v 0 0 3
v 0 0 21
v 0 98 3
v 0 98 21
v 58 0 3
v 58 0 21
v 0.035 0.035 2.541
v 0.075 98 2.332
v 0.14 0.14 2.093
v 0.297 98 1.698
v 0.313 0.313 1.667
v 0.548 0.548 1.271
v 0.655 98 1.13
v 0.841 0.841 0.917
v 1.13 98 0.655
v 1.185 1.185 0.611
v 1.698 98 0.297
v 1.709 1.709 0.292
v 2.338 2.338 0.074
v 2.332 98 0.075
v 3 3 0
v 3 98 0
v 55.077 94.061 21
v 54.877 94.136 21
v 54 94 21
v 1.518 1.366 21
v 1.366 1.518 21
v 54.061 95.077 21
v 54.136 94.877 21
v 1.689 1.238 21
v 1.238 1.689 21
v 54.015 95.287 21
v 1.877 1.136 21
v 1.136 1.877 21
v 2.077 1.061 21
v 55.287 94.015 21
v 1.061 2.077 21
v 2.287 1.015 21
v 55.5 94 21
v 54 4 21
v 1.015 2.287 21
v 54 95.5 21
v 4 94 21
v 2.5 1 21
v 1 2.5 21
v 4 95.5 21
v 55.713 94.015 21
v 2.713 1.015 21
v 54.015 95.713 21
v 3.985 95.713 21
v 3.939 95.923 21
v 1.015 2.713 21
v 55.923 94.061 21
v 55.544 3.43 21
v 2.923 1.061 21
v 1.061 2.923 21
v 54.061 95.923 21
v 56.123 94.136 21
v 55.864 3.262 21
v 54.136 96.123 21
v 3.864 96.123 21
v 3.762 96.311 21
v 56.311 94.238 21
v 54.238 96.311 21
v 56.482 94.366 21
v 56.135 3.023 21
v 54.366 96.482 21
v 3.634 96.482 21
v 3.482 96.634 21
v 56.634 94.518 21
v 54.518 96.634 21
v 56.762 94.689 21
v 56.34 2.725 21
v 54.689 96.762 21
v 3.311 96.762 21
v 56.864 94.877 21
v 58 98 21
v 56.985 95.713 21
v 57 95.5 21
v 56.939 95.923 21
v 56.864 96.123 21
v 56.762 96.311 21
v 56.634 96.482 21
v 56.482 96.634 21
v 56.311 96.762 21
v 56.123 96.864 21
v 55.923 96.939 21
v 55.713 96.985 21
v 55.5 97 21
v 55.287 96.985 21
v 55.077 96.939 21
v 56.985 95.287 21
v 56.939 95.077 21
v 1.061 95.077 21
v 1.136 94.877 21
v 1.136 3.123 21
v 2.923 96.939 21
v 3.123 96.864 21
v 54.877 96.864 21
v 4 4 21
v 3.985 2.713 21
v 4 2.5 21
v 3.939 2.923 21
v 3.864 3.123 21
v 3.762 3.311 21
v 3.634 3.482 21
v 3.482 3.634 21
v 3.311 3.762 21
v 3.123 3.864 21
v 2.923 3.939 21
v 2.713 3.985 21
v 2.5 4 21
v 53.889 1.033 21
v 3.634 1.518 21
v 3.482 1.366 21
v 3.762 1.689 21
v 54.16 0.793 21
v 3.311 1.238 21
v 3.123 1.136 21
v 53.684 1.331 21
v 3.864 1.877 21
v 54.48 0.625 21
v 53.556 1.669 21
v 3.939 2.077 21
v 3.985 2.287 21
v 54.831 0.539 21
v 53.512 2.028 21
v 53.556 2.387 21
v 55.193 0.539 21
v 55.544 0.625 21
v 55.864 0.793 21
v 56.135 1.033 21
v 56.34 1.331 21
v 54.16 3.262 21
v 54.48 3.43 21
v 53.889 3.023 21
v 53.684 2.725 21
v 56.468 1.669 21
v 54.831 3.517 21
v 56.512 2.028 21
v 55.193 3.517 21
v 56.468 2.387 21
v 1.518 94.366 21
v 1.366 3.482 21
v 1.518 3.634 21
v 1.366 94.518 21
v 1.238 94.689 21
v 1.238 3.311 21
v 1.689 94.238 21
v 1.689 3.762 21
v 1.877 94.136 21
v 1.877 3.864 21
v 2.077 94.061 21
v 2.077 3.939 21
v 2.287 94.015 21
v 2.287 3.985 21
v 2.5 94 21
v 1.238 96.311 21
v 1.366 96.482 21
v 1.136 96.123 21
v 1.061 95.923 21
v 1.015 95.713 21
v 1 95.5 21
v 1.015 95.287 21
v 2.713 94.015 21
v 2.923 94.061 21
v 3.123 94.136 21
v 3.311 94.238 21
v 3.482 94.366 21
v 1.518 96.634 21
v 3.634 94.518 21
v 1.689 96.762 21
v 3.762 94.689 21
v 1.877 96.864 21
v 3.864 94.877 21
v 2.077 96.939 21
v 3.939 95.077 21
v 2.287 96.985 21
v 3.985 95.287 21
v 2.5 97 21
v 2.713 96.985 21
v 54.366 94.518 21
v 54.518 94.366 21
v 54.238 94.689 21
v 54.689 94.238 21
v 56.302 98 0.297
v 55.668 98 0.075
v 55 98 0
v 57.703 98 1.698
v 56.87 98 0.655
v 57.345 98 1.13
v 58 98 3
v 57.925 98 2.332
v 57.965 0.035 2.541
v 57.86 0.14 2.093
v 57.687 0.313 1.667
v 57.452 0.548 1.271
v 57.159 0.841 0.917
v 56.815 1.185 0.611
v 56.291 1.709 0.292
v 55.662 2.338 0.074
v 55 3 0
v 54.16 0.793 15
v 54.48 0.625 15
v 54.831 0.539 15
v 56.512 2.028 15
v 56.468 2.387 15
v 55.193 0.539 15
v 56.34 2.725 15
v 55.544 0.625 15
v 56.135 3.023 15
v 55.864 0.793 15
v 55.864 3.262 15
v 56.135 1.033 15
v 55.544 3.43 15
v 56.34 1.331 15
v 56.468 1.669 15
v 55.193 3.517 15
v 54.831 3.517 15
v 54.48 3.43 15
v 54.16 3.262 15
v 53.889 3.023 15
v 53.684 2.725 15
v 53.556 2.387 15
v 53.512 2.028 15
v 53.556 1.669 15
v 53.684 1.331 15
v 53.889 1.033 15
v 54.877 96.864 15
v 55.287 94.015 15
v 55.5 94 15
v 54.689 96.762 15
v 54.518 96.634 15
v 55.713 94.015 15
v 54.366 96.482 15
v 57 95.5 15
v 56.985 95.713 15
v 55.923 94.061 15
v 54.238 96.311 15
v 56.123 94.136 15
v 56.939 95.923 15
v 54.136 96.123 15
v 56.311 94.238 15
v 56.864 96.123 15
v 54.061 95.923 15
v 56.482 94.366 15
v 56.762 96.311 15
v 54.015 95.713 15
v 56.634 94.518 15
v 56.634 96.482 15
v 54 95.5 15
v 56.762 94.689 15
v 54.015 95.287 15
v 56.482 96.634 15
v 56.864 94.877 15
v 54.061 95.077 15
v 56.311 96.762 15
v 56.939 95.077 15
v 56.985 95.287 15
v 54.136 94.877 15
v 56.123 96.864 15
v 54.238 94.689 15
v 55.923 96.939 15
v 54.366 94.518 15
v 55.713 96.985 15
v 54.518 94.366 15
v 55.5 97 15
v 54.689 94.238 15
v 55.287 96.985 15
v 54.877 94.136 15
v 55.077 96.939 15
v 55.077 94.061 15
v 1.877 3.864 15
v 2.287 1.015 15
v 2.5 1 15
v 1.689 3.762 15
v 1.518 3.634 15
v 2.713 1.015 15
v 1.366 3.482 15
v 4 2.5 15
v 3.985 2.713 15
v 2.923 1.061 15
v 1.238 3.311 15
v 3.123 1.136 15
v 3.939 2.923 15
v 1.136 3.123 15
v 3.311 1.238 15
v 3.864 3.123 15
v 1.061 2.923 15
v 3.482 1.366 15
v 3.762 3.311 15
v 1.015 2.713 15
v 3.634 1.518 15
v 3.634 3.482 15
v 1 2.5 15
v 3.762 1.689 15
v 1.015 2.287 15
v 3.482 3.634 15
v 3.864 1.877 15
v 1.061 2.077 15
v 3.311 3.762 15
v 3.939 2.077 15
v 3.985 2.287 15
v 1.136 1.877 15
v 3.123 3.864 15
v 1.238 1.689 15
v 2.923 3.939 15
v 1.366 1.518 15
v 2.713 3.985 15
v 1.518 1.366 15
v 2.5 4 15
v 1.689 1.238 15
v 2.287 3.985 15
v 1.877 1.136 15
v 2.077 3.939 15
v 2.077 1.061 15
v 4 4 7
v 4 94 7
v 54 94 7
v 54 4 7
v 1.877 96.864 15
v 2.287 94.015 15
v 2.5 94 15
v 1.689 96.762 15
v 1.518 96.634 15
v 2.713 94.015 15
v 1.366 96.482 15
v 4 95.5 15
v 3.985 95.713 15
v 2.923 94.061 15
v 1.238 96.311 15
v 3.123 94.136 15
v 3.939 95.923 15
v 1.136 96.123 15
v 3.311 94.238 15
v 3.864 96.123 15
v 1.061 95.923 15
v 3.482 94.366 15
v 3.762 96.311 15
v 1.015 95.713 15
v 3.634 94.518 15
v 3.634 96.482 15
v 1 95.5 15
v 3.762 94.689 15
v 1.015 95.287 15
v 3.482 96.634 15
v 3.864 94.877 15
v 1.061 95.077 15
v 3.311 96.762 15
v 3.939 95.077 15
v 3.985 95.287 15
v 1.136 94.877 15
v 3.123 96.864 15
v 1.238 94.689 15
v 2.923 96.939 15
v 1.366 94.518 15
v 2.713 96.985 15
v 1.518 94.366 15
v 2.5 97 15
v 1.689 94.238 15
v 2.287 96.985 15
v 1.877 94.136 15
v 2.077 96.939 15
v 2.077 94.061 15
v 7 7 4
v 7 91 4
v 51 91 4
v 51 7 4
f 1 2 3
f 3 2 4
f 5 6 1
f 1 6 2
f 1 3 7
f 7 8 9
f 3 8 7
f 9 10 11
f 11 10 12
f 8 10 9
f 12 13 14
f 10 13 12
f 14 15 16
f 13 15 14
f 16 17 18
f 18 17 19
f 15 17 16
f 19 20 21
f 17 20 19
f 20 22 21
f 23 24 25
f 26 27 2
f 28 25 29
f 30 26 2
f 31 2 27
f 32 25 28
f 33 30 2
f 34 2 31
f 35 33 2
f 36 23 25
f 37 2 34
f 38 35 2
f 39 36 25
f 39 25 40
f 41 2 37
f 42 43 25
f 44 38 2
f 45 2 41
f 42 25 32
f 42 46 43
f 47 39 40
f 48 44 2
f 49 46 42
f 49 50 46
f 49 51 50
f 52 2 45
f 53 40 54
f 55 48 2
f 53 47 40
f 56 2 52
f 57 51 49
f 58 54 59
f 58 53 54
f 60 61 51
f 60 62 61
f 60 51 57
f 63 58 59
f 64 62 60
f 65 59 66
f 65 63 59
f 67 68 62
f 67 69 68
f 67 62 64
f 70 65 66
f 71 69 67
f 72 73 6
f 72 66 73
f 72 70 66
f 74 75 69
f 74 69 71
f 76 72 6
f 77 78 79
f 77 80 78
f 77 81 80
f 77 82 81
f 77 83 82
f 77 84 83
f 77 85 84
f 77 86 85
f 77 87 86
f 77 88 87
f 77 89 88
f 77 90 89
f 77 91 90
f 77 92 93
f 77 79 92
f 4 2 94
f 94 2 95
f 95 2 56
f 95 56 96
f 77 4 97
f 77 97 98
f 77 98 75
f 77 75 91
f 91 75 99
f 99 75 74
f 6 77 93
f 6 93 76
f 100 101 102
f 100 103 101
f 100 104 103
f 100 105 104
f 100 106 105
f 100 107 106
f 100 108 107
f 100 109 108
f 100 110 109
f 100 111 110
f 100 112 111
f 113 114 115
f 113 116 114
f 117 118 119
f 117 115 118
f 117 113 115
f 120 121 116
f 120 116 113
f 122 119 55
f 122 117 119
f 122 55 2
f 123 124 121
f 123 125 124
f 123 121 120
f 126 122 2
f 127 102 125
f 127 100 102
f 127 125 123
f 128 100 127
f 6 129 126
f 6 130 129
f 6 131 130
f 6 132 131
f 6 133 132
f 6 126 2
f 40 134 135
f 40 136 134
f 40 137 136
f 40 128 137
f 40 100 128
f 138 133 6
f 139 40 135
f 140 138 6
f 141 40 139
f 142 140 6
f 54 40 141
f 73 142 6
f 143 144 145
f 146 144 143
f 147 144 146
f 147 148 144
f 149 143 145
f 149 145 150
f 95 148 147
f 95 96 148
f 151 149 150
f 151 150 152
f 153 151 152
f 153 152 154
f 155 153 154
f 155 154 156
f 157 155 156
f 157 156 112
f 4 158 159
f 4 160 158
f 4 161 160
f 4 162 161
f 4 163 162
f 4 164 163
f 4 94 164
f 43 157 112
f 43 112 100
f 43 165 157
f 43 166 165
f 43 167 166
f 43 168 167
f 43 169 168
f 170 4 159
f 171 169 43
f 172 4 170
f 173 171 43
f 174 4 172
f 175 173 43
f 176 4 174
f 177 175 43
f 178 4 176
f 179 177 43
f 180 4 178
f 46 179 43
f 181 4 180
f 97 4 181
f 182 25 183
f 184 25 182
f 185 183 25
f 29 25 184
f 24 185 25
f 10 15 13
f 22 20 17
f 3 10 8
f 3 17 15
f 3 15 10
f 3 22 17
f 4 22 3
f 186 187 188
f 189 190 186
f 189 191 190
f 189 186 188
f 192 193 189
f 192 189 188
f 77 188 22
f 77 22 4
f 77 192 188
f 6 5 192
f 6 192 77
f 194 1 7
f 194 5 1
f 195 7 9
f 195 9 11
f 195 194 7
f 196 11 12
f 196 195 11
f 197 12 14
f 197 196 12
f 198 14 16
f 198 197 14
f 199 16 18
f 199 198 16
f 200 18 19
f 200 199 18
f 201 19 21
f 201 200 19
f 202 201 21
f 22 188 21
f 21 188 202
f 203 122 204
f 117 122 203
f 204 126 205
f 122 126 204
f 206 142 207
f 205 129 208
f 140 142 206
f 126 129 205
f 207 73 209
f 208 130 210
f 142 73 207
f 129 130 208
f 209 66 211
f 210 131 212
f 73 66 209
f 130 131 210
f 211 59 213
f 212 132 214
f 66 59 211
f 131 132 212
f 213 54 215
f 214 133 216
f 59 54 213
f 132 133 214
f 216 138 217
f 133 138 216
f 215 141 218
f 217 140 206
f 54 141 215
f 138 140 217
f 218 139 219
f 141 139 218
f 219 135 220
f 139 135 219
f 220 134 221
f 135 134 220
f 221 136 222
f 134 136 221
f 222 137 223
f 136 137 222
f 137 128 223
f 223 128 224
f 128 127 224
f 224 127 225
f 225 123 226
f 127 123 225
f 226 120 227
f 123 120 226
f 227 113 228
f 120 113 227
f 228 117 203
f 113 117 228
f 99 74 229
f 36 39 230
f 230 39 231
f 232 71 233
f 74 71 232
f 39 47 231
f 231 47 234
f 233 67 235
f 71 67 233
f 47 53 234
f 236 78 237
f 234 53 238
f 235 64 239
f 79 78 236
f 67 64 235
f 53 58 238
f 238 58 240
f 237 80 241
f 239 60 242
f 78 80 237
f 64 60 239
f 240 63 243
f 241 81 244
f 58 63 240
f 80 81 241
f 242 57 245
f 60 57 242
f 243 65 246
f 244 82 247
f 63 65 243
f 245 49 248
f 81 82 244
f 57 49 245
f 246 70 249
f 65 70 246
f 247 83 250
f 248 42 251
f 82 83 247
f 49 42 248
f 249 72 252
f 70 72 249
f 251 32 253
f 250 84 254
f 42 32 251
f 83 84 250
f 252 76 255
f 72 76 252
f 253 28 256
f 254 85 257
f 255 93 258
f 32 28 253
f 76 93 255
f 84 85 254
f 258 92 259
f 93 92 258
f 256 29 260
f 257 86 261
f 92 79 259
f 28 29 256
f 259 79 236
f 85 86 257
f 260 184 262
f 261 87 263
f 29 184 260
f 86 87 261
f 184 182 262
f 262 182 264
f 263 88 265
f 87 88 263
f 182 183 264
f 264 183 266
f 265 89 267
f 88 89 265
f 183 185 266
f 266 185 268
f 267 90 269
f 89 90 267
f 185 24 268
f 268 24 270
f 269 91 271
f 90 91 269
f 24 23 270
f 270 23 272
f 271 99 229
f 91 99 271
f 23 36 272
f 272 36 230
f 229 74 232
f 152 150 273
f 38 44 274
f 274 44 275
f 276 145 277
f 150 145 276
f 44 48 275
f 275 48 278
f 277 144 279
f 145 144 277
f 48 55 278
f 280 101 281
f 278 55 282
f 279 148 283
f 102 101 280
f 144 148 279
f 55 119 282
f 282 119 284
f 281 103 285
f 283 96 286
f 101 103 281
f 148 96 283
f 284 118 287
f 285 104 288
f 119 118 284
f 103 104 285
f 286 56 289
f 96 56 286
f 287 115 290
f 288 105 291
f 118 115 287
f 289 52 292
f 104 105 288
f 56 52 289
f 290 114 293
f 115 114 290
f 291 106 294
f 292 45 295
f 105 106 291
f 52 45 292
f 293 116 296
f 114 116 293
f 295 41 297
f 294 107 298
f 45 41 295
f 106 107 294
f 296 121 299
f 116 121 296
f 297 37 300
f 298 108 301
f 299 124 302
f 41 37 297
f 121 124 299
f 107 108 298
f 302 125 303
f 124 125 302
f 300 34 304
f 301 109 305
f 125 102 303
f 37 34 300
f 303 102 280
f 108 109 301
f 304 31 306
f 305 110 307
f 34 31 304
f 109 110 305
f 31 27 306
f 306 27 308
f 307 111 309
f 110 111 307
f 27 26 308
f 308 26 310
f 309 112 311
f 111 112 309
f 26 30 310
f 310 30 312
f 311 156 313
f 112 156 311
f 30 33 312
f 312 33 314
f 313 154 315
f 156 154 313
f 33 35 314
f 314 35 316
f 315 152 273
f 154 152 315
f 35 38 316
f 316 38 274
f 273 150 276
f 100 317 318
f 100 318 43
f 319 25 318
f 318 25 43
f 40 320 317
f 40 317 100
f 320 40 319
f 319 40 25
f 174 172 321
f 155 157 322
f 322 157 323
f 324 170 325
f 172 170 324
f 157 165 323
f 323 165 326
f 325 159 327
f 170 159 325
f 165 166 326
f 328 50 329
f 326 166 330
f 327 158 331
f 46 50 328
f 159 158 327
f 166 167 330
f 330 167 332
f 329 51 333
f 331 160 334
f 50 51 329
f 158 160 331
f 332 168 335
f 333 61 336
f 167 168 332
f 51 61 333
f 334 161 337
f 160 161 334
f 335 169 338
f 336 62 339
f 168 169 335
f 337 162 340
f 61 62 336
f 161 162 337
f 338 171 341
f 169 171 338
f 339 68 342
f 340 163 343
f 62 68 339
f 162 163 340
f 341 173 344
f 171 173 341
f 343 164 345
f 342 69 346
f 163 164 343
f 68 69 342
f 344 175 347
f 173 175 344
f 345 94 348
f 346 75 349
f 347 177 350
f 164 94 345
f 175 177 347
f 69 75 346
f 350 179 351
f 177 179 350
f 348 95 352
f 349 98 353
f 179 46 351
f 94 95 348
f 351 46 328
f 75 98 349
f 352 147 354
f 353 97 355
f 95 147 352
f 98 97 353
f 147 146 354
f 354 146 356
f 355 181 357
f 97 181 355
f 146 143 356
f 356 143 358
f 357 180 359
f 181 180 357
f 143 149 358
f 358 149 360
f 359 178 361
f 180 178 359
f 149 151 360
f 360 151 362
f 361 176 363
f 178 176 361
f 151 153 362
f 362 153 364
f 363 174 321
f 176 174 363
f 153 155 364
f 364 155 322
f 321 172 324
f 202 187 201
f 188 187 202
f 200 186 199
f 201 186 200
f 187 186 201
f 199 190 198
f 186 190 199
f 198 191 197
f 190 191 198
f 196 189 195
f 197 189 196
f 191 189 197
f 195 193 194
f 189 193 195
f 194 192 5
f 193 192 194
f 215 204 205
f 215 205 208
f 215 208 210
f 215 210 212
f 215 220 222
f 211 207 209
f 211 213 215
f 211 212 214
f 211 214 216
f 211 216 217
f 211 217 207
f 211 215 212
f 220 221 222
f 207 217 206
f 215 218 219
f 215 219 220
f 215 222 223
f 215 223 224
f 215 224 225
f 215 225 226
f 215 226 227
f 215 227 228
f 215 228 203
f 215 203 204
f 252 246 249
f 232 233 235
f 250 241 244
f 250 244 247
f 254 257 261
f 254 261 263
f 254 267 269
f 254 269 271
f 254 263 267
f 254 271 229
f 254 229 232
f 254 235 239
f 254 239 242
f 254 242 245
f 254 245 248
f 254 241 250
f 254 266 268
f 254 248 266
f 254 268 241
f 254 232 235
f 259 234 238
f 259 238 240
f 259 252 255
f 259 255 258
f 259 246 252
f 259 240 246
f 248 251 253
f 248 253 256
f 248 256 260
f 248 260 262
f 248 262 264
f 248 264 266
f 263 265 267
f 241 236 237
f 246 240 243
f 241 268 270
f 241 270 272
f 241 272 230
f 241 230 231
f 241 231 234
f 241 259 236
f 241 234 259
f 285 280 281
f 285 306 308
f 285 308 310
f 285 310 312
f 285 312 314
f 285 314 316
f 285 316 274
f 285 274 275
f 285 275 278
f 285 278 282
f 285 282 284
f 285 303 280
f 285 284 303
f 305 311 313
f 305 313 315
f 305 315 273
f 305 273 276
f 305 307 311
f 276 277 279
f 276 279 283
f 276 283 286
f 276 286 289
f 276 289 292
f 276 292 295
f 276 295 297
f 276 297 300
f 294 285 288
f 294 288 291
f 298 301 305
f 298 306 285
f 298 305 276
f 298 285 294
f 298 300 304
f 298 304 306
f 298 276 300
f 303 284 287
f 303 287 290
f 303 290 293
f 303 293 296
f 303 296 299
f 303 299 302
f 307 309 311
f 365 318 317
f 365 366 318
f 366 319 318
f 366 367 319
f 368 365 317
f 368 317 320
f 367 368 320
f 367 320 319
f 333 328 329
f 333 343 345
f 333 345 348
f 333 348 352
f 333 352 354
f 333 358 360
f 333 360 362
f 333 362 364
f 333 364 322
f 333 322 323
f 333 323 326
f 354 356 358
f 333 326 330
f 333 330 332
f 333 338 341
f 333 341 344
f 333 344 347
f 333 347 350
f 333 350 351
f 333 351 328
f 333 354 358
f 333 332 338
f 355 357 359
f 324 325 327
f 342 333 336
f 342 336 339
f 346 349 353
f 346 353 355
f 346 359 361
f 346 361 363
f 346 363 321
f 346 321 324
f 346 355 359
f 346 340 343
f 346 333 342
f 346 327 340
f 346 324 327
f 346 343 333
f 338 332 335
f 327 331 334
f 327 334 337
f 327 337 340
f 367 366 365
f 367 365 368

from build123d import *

# Parameters (mm, degrees)
CYLINDER003_R     = 1.5
CYLINDER003_DEPTH = 6
CYLINDER001_R     = 1.5
CYLINDER001_DEPTH = 6
CYLINDER002_R     = 1.5
CYLINDER002_DEPTH = 6
CYLINDER_R        = 1.5
CYLINDER_DEPTH    = 6
BOX001_W          = 50
BOX001_H          = 90
BOX001_DEPTH      = 17
CHAMFER_SIZE      = 3
BOX_W             = 58
BOX_H             = 98
BOX_DEPTH         = 21
FILLET_R          = 3


with BuildPart() as cylinder003:
    # Cylinder003 → Cylinder003 (new body)
    with BuildSketch(Plane(origin=(55.5, 95.5, 15), x_dir=(1, 0, 0), z_dir=(0, 0, 1))):
        Circle(CYLINDER003_R)
    extrude(amount=CYLINDER003_DEPTH)


with BuildPart() as cylinder001:
    # Cylinder001 → Cylinder001 (new body)
    with BuildSketch(Plane(origin=(55.012, 2.02785, 15), x_dir=(1, 0, 0), z_dir=(0, 0, 1))):
        Circle(CYLINDER001_R)
    extrude(amount=CYLINDER001_DEPTH)


with BuildPart() as cylinder002:
    # Cylinder002 → Cylinder002 (new body)
    with BuildSketch(Plane(origin=(2.5, 95.5, 15), x_dir=(1, 0, 0), z_dir=(0, 0, 1))):
        Circle(CYLINDER002_R)
    extrude(amount=CYLINDER002_DEPTH)


with BuildPart() as cylinder:
    # Cylinder → Cylinder (new body)
    with BuildSketch(Plane(origin=(2.5, 2.5, 15), x_dir=(1, 0, 0), z_dir=(0, 0, 1))):
        Circle(CYLINDER_R)
    extrude(amount=CYLINDER_DEPTH)


with BuildPart() as chamfer_body:
    # Box001 → Box001 (new body)
    with BuildSketch(Plane(origin=(4, 4, 4), x_dir=(1, 0, 0), z_dir=(0, 0, 1))):
        with Locations((25, 45)):
            Rectangle(BOX001_W, BOX001_H)
    extrude(amount=BOX001_DEPTH)

    # Chamfer
    chamfer_edges = [chamfer_body.edges().sort_by_distance(p)[0] for p in [
        (4, 49, 4),
        (54, 49, 4),
        (29, 4, 4),
        (29, 94, 4),
    ]]
    chamfer(chamfer_edges, length=CHAMFER_SIZE)


with BuildPart() as case_top:
    # Box → Box (new body)
    with BuildSketch(Plane.XY):
        with Locations((29, 49)):
            Rectangle(BOX_W, BOX_H)
    extrude(amount=BOX_DEPTH)

    # Cut: cut Chamfer body
    add(chamfer_body.part, mode=Mode.SUBTRACT)

    # Fillet
    fillet_edges = [case_top.edges().sort_by_distance(p)[0] for p in [
        (0, 49, 0),
        (29, 0, 0),
        (58, 49, 0),
    ]]
    fillet(fillet_edges, radius=FILLET_R)

    # Cut001: cut Cylinder
    add(cylinder.part, mode=Mode.SUBTRACT)

    # Cut002: cut Cylinder002
    add(cylinder002.part, mode=Mode.SUBTRACT)

    # Cut003: cut Cylinder001
    add(cylinder001.part, mode=Mode.SUBTRACT)

    # Cut004: cut Cylinder003
    add(cylinder003.part, mode=Mode.SUBTRACT)


solid = case_top.part
